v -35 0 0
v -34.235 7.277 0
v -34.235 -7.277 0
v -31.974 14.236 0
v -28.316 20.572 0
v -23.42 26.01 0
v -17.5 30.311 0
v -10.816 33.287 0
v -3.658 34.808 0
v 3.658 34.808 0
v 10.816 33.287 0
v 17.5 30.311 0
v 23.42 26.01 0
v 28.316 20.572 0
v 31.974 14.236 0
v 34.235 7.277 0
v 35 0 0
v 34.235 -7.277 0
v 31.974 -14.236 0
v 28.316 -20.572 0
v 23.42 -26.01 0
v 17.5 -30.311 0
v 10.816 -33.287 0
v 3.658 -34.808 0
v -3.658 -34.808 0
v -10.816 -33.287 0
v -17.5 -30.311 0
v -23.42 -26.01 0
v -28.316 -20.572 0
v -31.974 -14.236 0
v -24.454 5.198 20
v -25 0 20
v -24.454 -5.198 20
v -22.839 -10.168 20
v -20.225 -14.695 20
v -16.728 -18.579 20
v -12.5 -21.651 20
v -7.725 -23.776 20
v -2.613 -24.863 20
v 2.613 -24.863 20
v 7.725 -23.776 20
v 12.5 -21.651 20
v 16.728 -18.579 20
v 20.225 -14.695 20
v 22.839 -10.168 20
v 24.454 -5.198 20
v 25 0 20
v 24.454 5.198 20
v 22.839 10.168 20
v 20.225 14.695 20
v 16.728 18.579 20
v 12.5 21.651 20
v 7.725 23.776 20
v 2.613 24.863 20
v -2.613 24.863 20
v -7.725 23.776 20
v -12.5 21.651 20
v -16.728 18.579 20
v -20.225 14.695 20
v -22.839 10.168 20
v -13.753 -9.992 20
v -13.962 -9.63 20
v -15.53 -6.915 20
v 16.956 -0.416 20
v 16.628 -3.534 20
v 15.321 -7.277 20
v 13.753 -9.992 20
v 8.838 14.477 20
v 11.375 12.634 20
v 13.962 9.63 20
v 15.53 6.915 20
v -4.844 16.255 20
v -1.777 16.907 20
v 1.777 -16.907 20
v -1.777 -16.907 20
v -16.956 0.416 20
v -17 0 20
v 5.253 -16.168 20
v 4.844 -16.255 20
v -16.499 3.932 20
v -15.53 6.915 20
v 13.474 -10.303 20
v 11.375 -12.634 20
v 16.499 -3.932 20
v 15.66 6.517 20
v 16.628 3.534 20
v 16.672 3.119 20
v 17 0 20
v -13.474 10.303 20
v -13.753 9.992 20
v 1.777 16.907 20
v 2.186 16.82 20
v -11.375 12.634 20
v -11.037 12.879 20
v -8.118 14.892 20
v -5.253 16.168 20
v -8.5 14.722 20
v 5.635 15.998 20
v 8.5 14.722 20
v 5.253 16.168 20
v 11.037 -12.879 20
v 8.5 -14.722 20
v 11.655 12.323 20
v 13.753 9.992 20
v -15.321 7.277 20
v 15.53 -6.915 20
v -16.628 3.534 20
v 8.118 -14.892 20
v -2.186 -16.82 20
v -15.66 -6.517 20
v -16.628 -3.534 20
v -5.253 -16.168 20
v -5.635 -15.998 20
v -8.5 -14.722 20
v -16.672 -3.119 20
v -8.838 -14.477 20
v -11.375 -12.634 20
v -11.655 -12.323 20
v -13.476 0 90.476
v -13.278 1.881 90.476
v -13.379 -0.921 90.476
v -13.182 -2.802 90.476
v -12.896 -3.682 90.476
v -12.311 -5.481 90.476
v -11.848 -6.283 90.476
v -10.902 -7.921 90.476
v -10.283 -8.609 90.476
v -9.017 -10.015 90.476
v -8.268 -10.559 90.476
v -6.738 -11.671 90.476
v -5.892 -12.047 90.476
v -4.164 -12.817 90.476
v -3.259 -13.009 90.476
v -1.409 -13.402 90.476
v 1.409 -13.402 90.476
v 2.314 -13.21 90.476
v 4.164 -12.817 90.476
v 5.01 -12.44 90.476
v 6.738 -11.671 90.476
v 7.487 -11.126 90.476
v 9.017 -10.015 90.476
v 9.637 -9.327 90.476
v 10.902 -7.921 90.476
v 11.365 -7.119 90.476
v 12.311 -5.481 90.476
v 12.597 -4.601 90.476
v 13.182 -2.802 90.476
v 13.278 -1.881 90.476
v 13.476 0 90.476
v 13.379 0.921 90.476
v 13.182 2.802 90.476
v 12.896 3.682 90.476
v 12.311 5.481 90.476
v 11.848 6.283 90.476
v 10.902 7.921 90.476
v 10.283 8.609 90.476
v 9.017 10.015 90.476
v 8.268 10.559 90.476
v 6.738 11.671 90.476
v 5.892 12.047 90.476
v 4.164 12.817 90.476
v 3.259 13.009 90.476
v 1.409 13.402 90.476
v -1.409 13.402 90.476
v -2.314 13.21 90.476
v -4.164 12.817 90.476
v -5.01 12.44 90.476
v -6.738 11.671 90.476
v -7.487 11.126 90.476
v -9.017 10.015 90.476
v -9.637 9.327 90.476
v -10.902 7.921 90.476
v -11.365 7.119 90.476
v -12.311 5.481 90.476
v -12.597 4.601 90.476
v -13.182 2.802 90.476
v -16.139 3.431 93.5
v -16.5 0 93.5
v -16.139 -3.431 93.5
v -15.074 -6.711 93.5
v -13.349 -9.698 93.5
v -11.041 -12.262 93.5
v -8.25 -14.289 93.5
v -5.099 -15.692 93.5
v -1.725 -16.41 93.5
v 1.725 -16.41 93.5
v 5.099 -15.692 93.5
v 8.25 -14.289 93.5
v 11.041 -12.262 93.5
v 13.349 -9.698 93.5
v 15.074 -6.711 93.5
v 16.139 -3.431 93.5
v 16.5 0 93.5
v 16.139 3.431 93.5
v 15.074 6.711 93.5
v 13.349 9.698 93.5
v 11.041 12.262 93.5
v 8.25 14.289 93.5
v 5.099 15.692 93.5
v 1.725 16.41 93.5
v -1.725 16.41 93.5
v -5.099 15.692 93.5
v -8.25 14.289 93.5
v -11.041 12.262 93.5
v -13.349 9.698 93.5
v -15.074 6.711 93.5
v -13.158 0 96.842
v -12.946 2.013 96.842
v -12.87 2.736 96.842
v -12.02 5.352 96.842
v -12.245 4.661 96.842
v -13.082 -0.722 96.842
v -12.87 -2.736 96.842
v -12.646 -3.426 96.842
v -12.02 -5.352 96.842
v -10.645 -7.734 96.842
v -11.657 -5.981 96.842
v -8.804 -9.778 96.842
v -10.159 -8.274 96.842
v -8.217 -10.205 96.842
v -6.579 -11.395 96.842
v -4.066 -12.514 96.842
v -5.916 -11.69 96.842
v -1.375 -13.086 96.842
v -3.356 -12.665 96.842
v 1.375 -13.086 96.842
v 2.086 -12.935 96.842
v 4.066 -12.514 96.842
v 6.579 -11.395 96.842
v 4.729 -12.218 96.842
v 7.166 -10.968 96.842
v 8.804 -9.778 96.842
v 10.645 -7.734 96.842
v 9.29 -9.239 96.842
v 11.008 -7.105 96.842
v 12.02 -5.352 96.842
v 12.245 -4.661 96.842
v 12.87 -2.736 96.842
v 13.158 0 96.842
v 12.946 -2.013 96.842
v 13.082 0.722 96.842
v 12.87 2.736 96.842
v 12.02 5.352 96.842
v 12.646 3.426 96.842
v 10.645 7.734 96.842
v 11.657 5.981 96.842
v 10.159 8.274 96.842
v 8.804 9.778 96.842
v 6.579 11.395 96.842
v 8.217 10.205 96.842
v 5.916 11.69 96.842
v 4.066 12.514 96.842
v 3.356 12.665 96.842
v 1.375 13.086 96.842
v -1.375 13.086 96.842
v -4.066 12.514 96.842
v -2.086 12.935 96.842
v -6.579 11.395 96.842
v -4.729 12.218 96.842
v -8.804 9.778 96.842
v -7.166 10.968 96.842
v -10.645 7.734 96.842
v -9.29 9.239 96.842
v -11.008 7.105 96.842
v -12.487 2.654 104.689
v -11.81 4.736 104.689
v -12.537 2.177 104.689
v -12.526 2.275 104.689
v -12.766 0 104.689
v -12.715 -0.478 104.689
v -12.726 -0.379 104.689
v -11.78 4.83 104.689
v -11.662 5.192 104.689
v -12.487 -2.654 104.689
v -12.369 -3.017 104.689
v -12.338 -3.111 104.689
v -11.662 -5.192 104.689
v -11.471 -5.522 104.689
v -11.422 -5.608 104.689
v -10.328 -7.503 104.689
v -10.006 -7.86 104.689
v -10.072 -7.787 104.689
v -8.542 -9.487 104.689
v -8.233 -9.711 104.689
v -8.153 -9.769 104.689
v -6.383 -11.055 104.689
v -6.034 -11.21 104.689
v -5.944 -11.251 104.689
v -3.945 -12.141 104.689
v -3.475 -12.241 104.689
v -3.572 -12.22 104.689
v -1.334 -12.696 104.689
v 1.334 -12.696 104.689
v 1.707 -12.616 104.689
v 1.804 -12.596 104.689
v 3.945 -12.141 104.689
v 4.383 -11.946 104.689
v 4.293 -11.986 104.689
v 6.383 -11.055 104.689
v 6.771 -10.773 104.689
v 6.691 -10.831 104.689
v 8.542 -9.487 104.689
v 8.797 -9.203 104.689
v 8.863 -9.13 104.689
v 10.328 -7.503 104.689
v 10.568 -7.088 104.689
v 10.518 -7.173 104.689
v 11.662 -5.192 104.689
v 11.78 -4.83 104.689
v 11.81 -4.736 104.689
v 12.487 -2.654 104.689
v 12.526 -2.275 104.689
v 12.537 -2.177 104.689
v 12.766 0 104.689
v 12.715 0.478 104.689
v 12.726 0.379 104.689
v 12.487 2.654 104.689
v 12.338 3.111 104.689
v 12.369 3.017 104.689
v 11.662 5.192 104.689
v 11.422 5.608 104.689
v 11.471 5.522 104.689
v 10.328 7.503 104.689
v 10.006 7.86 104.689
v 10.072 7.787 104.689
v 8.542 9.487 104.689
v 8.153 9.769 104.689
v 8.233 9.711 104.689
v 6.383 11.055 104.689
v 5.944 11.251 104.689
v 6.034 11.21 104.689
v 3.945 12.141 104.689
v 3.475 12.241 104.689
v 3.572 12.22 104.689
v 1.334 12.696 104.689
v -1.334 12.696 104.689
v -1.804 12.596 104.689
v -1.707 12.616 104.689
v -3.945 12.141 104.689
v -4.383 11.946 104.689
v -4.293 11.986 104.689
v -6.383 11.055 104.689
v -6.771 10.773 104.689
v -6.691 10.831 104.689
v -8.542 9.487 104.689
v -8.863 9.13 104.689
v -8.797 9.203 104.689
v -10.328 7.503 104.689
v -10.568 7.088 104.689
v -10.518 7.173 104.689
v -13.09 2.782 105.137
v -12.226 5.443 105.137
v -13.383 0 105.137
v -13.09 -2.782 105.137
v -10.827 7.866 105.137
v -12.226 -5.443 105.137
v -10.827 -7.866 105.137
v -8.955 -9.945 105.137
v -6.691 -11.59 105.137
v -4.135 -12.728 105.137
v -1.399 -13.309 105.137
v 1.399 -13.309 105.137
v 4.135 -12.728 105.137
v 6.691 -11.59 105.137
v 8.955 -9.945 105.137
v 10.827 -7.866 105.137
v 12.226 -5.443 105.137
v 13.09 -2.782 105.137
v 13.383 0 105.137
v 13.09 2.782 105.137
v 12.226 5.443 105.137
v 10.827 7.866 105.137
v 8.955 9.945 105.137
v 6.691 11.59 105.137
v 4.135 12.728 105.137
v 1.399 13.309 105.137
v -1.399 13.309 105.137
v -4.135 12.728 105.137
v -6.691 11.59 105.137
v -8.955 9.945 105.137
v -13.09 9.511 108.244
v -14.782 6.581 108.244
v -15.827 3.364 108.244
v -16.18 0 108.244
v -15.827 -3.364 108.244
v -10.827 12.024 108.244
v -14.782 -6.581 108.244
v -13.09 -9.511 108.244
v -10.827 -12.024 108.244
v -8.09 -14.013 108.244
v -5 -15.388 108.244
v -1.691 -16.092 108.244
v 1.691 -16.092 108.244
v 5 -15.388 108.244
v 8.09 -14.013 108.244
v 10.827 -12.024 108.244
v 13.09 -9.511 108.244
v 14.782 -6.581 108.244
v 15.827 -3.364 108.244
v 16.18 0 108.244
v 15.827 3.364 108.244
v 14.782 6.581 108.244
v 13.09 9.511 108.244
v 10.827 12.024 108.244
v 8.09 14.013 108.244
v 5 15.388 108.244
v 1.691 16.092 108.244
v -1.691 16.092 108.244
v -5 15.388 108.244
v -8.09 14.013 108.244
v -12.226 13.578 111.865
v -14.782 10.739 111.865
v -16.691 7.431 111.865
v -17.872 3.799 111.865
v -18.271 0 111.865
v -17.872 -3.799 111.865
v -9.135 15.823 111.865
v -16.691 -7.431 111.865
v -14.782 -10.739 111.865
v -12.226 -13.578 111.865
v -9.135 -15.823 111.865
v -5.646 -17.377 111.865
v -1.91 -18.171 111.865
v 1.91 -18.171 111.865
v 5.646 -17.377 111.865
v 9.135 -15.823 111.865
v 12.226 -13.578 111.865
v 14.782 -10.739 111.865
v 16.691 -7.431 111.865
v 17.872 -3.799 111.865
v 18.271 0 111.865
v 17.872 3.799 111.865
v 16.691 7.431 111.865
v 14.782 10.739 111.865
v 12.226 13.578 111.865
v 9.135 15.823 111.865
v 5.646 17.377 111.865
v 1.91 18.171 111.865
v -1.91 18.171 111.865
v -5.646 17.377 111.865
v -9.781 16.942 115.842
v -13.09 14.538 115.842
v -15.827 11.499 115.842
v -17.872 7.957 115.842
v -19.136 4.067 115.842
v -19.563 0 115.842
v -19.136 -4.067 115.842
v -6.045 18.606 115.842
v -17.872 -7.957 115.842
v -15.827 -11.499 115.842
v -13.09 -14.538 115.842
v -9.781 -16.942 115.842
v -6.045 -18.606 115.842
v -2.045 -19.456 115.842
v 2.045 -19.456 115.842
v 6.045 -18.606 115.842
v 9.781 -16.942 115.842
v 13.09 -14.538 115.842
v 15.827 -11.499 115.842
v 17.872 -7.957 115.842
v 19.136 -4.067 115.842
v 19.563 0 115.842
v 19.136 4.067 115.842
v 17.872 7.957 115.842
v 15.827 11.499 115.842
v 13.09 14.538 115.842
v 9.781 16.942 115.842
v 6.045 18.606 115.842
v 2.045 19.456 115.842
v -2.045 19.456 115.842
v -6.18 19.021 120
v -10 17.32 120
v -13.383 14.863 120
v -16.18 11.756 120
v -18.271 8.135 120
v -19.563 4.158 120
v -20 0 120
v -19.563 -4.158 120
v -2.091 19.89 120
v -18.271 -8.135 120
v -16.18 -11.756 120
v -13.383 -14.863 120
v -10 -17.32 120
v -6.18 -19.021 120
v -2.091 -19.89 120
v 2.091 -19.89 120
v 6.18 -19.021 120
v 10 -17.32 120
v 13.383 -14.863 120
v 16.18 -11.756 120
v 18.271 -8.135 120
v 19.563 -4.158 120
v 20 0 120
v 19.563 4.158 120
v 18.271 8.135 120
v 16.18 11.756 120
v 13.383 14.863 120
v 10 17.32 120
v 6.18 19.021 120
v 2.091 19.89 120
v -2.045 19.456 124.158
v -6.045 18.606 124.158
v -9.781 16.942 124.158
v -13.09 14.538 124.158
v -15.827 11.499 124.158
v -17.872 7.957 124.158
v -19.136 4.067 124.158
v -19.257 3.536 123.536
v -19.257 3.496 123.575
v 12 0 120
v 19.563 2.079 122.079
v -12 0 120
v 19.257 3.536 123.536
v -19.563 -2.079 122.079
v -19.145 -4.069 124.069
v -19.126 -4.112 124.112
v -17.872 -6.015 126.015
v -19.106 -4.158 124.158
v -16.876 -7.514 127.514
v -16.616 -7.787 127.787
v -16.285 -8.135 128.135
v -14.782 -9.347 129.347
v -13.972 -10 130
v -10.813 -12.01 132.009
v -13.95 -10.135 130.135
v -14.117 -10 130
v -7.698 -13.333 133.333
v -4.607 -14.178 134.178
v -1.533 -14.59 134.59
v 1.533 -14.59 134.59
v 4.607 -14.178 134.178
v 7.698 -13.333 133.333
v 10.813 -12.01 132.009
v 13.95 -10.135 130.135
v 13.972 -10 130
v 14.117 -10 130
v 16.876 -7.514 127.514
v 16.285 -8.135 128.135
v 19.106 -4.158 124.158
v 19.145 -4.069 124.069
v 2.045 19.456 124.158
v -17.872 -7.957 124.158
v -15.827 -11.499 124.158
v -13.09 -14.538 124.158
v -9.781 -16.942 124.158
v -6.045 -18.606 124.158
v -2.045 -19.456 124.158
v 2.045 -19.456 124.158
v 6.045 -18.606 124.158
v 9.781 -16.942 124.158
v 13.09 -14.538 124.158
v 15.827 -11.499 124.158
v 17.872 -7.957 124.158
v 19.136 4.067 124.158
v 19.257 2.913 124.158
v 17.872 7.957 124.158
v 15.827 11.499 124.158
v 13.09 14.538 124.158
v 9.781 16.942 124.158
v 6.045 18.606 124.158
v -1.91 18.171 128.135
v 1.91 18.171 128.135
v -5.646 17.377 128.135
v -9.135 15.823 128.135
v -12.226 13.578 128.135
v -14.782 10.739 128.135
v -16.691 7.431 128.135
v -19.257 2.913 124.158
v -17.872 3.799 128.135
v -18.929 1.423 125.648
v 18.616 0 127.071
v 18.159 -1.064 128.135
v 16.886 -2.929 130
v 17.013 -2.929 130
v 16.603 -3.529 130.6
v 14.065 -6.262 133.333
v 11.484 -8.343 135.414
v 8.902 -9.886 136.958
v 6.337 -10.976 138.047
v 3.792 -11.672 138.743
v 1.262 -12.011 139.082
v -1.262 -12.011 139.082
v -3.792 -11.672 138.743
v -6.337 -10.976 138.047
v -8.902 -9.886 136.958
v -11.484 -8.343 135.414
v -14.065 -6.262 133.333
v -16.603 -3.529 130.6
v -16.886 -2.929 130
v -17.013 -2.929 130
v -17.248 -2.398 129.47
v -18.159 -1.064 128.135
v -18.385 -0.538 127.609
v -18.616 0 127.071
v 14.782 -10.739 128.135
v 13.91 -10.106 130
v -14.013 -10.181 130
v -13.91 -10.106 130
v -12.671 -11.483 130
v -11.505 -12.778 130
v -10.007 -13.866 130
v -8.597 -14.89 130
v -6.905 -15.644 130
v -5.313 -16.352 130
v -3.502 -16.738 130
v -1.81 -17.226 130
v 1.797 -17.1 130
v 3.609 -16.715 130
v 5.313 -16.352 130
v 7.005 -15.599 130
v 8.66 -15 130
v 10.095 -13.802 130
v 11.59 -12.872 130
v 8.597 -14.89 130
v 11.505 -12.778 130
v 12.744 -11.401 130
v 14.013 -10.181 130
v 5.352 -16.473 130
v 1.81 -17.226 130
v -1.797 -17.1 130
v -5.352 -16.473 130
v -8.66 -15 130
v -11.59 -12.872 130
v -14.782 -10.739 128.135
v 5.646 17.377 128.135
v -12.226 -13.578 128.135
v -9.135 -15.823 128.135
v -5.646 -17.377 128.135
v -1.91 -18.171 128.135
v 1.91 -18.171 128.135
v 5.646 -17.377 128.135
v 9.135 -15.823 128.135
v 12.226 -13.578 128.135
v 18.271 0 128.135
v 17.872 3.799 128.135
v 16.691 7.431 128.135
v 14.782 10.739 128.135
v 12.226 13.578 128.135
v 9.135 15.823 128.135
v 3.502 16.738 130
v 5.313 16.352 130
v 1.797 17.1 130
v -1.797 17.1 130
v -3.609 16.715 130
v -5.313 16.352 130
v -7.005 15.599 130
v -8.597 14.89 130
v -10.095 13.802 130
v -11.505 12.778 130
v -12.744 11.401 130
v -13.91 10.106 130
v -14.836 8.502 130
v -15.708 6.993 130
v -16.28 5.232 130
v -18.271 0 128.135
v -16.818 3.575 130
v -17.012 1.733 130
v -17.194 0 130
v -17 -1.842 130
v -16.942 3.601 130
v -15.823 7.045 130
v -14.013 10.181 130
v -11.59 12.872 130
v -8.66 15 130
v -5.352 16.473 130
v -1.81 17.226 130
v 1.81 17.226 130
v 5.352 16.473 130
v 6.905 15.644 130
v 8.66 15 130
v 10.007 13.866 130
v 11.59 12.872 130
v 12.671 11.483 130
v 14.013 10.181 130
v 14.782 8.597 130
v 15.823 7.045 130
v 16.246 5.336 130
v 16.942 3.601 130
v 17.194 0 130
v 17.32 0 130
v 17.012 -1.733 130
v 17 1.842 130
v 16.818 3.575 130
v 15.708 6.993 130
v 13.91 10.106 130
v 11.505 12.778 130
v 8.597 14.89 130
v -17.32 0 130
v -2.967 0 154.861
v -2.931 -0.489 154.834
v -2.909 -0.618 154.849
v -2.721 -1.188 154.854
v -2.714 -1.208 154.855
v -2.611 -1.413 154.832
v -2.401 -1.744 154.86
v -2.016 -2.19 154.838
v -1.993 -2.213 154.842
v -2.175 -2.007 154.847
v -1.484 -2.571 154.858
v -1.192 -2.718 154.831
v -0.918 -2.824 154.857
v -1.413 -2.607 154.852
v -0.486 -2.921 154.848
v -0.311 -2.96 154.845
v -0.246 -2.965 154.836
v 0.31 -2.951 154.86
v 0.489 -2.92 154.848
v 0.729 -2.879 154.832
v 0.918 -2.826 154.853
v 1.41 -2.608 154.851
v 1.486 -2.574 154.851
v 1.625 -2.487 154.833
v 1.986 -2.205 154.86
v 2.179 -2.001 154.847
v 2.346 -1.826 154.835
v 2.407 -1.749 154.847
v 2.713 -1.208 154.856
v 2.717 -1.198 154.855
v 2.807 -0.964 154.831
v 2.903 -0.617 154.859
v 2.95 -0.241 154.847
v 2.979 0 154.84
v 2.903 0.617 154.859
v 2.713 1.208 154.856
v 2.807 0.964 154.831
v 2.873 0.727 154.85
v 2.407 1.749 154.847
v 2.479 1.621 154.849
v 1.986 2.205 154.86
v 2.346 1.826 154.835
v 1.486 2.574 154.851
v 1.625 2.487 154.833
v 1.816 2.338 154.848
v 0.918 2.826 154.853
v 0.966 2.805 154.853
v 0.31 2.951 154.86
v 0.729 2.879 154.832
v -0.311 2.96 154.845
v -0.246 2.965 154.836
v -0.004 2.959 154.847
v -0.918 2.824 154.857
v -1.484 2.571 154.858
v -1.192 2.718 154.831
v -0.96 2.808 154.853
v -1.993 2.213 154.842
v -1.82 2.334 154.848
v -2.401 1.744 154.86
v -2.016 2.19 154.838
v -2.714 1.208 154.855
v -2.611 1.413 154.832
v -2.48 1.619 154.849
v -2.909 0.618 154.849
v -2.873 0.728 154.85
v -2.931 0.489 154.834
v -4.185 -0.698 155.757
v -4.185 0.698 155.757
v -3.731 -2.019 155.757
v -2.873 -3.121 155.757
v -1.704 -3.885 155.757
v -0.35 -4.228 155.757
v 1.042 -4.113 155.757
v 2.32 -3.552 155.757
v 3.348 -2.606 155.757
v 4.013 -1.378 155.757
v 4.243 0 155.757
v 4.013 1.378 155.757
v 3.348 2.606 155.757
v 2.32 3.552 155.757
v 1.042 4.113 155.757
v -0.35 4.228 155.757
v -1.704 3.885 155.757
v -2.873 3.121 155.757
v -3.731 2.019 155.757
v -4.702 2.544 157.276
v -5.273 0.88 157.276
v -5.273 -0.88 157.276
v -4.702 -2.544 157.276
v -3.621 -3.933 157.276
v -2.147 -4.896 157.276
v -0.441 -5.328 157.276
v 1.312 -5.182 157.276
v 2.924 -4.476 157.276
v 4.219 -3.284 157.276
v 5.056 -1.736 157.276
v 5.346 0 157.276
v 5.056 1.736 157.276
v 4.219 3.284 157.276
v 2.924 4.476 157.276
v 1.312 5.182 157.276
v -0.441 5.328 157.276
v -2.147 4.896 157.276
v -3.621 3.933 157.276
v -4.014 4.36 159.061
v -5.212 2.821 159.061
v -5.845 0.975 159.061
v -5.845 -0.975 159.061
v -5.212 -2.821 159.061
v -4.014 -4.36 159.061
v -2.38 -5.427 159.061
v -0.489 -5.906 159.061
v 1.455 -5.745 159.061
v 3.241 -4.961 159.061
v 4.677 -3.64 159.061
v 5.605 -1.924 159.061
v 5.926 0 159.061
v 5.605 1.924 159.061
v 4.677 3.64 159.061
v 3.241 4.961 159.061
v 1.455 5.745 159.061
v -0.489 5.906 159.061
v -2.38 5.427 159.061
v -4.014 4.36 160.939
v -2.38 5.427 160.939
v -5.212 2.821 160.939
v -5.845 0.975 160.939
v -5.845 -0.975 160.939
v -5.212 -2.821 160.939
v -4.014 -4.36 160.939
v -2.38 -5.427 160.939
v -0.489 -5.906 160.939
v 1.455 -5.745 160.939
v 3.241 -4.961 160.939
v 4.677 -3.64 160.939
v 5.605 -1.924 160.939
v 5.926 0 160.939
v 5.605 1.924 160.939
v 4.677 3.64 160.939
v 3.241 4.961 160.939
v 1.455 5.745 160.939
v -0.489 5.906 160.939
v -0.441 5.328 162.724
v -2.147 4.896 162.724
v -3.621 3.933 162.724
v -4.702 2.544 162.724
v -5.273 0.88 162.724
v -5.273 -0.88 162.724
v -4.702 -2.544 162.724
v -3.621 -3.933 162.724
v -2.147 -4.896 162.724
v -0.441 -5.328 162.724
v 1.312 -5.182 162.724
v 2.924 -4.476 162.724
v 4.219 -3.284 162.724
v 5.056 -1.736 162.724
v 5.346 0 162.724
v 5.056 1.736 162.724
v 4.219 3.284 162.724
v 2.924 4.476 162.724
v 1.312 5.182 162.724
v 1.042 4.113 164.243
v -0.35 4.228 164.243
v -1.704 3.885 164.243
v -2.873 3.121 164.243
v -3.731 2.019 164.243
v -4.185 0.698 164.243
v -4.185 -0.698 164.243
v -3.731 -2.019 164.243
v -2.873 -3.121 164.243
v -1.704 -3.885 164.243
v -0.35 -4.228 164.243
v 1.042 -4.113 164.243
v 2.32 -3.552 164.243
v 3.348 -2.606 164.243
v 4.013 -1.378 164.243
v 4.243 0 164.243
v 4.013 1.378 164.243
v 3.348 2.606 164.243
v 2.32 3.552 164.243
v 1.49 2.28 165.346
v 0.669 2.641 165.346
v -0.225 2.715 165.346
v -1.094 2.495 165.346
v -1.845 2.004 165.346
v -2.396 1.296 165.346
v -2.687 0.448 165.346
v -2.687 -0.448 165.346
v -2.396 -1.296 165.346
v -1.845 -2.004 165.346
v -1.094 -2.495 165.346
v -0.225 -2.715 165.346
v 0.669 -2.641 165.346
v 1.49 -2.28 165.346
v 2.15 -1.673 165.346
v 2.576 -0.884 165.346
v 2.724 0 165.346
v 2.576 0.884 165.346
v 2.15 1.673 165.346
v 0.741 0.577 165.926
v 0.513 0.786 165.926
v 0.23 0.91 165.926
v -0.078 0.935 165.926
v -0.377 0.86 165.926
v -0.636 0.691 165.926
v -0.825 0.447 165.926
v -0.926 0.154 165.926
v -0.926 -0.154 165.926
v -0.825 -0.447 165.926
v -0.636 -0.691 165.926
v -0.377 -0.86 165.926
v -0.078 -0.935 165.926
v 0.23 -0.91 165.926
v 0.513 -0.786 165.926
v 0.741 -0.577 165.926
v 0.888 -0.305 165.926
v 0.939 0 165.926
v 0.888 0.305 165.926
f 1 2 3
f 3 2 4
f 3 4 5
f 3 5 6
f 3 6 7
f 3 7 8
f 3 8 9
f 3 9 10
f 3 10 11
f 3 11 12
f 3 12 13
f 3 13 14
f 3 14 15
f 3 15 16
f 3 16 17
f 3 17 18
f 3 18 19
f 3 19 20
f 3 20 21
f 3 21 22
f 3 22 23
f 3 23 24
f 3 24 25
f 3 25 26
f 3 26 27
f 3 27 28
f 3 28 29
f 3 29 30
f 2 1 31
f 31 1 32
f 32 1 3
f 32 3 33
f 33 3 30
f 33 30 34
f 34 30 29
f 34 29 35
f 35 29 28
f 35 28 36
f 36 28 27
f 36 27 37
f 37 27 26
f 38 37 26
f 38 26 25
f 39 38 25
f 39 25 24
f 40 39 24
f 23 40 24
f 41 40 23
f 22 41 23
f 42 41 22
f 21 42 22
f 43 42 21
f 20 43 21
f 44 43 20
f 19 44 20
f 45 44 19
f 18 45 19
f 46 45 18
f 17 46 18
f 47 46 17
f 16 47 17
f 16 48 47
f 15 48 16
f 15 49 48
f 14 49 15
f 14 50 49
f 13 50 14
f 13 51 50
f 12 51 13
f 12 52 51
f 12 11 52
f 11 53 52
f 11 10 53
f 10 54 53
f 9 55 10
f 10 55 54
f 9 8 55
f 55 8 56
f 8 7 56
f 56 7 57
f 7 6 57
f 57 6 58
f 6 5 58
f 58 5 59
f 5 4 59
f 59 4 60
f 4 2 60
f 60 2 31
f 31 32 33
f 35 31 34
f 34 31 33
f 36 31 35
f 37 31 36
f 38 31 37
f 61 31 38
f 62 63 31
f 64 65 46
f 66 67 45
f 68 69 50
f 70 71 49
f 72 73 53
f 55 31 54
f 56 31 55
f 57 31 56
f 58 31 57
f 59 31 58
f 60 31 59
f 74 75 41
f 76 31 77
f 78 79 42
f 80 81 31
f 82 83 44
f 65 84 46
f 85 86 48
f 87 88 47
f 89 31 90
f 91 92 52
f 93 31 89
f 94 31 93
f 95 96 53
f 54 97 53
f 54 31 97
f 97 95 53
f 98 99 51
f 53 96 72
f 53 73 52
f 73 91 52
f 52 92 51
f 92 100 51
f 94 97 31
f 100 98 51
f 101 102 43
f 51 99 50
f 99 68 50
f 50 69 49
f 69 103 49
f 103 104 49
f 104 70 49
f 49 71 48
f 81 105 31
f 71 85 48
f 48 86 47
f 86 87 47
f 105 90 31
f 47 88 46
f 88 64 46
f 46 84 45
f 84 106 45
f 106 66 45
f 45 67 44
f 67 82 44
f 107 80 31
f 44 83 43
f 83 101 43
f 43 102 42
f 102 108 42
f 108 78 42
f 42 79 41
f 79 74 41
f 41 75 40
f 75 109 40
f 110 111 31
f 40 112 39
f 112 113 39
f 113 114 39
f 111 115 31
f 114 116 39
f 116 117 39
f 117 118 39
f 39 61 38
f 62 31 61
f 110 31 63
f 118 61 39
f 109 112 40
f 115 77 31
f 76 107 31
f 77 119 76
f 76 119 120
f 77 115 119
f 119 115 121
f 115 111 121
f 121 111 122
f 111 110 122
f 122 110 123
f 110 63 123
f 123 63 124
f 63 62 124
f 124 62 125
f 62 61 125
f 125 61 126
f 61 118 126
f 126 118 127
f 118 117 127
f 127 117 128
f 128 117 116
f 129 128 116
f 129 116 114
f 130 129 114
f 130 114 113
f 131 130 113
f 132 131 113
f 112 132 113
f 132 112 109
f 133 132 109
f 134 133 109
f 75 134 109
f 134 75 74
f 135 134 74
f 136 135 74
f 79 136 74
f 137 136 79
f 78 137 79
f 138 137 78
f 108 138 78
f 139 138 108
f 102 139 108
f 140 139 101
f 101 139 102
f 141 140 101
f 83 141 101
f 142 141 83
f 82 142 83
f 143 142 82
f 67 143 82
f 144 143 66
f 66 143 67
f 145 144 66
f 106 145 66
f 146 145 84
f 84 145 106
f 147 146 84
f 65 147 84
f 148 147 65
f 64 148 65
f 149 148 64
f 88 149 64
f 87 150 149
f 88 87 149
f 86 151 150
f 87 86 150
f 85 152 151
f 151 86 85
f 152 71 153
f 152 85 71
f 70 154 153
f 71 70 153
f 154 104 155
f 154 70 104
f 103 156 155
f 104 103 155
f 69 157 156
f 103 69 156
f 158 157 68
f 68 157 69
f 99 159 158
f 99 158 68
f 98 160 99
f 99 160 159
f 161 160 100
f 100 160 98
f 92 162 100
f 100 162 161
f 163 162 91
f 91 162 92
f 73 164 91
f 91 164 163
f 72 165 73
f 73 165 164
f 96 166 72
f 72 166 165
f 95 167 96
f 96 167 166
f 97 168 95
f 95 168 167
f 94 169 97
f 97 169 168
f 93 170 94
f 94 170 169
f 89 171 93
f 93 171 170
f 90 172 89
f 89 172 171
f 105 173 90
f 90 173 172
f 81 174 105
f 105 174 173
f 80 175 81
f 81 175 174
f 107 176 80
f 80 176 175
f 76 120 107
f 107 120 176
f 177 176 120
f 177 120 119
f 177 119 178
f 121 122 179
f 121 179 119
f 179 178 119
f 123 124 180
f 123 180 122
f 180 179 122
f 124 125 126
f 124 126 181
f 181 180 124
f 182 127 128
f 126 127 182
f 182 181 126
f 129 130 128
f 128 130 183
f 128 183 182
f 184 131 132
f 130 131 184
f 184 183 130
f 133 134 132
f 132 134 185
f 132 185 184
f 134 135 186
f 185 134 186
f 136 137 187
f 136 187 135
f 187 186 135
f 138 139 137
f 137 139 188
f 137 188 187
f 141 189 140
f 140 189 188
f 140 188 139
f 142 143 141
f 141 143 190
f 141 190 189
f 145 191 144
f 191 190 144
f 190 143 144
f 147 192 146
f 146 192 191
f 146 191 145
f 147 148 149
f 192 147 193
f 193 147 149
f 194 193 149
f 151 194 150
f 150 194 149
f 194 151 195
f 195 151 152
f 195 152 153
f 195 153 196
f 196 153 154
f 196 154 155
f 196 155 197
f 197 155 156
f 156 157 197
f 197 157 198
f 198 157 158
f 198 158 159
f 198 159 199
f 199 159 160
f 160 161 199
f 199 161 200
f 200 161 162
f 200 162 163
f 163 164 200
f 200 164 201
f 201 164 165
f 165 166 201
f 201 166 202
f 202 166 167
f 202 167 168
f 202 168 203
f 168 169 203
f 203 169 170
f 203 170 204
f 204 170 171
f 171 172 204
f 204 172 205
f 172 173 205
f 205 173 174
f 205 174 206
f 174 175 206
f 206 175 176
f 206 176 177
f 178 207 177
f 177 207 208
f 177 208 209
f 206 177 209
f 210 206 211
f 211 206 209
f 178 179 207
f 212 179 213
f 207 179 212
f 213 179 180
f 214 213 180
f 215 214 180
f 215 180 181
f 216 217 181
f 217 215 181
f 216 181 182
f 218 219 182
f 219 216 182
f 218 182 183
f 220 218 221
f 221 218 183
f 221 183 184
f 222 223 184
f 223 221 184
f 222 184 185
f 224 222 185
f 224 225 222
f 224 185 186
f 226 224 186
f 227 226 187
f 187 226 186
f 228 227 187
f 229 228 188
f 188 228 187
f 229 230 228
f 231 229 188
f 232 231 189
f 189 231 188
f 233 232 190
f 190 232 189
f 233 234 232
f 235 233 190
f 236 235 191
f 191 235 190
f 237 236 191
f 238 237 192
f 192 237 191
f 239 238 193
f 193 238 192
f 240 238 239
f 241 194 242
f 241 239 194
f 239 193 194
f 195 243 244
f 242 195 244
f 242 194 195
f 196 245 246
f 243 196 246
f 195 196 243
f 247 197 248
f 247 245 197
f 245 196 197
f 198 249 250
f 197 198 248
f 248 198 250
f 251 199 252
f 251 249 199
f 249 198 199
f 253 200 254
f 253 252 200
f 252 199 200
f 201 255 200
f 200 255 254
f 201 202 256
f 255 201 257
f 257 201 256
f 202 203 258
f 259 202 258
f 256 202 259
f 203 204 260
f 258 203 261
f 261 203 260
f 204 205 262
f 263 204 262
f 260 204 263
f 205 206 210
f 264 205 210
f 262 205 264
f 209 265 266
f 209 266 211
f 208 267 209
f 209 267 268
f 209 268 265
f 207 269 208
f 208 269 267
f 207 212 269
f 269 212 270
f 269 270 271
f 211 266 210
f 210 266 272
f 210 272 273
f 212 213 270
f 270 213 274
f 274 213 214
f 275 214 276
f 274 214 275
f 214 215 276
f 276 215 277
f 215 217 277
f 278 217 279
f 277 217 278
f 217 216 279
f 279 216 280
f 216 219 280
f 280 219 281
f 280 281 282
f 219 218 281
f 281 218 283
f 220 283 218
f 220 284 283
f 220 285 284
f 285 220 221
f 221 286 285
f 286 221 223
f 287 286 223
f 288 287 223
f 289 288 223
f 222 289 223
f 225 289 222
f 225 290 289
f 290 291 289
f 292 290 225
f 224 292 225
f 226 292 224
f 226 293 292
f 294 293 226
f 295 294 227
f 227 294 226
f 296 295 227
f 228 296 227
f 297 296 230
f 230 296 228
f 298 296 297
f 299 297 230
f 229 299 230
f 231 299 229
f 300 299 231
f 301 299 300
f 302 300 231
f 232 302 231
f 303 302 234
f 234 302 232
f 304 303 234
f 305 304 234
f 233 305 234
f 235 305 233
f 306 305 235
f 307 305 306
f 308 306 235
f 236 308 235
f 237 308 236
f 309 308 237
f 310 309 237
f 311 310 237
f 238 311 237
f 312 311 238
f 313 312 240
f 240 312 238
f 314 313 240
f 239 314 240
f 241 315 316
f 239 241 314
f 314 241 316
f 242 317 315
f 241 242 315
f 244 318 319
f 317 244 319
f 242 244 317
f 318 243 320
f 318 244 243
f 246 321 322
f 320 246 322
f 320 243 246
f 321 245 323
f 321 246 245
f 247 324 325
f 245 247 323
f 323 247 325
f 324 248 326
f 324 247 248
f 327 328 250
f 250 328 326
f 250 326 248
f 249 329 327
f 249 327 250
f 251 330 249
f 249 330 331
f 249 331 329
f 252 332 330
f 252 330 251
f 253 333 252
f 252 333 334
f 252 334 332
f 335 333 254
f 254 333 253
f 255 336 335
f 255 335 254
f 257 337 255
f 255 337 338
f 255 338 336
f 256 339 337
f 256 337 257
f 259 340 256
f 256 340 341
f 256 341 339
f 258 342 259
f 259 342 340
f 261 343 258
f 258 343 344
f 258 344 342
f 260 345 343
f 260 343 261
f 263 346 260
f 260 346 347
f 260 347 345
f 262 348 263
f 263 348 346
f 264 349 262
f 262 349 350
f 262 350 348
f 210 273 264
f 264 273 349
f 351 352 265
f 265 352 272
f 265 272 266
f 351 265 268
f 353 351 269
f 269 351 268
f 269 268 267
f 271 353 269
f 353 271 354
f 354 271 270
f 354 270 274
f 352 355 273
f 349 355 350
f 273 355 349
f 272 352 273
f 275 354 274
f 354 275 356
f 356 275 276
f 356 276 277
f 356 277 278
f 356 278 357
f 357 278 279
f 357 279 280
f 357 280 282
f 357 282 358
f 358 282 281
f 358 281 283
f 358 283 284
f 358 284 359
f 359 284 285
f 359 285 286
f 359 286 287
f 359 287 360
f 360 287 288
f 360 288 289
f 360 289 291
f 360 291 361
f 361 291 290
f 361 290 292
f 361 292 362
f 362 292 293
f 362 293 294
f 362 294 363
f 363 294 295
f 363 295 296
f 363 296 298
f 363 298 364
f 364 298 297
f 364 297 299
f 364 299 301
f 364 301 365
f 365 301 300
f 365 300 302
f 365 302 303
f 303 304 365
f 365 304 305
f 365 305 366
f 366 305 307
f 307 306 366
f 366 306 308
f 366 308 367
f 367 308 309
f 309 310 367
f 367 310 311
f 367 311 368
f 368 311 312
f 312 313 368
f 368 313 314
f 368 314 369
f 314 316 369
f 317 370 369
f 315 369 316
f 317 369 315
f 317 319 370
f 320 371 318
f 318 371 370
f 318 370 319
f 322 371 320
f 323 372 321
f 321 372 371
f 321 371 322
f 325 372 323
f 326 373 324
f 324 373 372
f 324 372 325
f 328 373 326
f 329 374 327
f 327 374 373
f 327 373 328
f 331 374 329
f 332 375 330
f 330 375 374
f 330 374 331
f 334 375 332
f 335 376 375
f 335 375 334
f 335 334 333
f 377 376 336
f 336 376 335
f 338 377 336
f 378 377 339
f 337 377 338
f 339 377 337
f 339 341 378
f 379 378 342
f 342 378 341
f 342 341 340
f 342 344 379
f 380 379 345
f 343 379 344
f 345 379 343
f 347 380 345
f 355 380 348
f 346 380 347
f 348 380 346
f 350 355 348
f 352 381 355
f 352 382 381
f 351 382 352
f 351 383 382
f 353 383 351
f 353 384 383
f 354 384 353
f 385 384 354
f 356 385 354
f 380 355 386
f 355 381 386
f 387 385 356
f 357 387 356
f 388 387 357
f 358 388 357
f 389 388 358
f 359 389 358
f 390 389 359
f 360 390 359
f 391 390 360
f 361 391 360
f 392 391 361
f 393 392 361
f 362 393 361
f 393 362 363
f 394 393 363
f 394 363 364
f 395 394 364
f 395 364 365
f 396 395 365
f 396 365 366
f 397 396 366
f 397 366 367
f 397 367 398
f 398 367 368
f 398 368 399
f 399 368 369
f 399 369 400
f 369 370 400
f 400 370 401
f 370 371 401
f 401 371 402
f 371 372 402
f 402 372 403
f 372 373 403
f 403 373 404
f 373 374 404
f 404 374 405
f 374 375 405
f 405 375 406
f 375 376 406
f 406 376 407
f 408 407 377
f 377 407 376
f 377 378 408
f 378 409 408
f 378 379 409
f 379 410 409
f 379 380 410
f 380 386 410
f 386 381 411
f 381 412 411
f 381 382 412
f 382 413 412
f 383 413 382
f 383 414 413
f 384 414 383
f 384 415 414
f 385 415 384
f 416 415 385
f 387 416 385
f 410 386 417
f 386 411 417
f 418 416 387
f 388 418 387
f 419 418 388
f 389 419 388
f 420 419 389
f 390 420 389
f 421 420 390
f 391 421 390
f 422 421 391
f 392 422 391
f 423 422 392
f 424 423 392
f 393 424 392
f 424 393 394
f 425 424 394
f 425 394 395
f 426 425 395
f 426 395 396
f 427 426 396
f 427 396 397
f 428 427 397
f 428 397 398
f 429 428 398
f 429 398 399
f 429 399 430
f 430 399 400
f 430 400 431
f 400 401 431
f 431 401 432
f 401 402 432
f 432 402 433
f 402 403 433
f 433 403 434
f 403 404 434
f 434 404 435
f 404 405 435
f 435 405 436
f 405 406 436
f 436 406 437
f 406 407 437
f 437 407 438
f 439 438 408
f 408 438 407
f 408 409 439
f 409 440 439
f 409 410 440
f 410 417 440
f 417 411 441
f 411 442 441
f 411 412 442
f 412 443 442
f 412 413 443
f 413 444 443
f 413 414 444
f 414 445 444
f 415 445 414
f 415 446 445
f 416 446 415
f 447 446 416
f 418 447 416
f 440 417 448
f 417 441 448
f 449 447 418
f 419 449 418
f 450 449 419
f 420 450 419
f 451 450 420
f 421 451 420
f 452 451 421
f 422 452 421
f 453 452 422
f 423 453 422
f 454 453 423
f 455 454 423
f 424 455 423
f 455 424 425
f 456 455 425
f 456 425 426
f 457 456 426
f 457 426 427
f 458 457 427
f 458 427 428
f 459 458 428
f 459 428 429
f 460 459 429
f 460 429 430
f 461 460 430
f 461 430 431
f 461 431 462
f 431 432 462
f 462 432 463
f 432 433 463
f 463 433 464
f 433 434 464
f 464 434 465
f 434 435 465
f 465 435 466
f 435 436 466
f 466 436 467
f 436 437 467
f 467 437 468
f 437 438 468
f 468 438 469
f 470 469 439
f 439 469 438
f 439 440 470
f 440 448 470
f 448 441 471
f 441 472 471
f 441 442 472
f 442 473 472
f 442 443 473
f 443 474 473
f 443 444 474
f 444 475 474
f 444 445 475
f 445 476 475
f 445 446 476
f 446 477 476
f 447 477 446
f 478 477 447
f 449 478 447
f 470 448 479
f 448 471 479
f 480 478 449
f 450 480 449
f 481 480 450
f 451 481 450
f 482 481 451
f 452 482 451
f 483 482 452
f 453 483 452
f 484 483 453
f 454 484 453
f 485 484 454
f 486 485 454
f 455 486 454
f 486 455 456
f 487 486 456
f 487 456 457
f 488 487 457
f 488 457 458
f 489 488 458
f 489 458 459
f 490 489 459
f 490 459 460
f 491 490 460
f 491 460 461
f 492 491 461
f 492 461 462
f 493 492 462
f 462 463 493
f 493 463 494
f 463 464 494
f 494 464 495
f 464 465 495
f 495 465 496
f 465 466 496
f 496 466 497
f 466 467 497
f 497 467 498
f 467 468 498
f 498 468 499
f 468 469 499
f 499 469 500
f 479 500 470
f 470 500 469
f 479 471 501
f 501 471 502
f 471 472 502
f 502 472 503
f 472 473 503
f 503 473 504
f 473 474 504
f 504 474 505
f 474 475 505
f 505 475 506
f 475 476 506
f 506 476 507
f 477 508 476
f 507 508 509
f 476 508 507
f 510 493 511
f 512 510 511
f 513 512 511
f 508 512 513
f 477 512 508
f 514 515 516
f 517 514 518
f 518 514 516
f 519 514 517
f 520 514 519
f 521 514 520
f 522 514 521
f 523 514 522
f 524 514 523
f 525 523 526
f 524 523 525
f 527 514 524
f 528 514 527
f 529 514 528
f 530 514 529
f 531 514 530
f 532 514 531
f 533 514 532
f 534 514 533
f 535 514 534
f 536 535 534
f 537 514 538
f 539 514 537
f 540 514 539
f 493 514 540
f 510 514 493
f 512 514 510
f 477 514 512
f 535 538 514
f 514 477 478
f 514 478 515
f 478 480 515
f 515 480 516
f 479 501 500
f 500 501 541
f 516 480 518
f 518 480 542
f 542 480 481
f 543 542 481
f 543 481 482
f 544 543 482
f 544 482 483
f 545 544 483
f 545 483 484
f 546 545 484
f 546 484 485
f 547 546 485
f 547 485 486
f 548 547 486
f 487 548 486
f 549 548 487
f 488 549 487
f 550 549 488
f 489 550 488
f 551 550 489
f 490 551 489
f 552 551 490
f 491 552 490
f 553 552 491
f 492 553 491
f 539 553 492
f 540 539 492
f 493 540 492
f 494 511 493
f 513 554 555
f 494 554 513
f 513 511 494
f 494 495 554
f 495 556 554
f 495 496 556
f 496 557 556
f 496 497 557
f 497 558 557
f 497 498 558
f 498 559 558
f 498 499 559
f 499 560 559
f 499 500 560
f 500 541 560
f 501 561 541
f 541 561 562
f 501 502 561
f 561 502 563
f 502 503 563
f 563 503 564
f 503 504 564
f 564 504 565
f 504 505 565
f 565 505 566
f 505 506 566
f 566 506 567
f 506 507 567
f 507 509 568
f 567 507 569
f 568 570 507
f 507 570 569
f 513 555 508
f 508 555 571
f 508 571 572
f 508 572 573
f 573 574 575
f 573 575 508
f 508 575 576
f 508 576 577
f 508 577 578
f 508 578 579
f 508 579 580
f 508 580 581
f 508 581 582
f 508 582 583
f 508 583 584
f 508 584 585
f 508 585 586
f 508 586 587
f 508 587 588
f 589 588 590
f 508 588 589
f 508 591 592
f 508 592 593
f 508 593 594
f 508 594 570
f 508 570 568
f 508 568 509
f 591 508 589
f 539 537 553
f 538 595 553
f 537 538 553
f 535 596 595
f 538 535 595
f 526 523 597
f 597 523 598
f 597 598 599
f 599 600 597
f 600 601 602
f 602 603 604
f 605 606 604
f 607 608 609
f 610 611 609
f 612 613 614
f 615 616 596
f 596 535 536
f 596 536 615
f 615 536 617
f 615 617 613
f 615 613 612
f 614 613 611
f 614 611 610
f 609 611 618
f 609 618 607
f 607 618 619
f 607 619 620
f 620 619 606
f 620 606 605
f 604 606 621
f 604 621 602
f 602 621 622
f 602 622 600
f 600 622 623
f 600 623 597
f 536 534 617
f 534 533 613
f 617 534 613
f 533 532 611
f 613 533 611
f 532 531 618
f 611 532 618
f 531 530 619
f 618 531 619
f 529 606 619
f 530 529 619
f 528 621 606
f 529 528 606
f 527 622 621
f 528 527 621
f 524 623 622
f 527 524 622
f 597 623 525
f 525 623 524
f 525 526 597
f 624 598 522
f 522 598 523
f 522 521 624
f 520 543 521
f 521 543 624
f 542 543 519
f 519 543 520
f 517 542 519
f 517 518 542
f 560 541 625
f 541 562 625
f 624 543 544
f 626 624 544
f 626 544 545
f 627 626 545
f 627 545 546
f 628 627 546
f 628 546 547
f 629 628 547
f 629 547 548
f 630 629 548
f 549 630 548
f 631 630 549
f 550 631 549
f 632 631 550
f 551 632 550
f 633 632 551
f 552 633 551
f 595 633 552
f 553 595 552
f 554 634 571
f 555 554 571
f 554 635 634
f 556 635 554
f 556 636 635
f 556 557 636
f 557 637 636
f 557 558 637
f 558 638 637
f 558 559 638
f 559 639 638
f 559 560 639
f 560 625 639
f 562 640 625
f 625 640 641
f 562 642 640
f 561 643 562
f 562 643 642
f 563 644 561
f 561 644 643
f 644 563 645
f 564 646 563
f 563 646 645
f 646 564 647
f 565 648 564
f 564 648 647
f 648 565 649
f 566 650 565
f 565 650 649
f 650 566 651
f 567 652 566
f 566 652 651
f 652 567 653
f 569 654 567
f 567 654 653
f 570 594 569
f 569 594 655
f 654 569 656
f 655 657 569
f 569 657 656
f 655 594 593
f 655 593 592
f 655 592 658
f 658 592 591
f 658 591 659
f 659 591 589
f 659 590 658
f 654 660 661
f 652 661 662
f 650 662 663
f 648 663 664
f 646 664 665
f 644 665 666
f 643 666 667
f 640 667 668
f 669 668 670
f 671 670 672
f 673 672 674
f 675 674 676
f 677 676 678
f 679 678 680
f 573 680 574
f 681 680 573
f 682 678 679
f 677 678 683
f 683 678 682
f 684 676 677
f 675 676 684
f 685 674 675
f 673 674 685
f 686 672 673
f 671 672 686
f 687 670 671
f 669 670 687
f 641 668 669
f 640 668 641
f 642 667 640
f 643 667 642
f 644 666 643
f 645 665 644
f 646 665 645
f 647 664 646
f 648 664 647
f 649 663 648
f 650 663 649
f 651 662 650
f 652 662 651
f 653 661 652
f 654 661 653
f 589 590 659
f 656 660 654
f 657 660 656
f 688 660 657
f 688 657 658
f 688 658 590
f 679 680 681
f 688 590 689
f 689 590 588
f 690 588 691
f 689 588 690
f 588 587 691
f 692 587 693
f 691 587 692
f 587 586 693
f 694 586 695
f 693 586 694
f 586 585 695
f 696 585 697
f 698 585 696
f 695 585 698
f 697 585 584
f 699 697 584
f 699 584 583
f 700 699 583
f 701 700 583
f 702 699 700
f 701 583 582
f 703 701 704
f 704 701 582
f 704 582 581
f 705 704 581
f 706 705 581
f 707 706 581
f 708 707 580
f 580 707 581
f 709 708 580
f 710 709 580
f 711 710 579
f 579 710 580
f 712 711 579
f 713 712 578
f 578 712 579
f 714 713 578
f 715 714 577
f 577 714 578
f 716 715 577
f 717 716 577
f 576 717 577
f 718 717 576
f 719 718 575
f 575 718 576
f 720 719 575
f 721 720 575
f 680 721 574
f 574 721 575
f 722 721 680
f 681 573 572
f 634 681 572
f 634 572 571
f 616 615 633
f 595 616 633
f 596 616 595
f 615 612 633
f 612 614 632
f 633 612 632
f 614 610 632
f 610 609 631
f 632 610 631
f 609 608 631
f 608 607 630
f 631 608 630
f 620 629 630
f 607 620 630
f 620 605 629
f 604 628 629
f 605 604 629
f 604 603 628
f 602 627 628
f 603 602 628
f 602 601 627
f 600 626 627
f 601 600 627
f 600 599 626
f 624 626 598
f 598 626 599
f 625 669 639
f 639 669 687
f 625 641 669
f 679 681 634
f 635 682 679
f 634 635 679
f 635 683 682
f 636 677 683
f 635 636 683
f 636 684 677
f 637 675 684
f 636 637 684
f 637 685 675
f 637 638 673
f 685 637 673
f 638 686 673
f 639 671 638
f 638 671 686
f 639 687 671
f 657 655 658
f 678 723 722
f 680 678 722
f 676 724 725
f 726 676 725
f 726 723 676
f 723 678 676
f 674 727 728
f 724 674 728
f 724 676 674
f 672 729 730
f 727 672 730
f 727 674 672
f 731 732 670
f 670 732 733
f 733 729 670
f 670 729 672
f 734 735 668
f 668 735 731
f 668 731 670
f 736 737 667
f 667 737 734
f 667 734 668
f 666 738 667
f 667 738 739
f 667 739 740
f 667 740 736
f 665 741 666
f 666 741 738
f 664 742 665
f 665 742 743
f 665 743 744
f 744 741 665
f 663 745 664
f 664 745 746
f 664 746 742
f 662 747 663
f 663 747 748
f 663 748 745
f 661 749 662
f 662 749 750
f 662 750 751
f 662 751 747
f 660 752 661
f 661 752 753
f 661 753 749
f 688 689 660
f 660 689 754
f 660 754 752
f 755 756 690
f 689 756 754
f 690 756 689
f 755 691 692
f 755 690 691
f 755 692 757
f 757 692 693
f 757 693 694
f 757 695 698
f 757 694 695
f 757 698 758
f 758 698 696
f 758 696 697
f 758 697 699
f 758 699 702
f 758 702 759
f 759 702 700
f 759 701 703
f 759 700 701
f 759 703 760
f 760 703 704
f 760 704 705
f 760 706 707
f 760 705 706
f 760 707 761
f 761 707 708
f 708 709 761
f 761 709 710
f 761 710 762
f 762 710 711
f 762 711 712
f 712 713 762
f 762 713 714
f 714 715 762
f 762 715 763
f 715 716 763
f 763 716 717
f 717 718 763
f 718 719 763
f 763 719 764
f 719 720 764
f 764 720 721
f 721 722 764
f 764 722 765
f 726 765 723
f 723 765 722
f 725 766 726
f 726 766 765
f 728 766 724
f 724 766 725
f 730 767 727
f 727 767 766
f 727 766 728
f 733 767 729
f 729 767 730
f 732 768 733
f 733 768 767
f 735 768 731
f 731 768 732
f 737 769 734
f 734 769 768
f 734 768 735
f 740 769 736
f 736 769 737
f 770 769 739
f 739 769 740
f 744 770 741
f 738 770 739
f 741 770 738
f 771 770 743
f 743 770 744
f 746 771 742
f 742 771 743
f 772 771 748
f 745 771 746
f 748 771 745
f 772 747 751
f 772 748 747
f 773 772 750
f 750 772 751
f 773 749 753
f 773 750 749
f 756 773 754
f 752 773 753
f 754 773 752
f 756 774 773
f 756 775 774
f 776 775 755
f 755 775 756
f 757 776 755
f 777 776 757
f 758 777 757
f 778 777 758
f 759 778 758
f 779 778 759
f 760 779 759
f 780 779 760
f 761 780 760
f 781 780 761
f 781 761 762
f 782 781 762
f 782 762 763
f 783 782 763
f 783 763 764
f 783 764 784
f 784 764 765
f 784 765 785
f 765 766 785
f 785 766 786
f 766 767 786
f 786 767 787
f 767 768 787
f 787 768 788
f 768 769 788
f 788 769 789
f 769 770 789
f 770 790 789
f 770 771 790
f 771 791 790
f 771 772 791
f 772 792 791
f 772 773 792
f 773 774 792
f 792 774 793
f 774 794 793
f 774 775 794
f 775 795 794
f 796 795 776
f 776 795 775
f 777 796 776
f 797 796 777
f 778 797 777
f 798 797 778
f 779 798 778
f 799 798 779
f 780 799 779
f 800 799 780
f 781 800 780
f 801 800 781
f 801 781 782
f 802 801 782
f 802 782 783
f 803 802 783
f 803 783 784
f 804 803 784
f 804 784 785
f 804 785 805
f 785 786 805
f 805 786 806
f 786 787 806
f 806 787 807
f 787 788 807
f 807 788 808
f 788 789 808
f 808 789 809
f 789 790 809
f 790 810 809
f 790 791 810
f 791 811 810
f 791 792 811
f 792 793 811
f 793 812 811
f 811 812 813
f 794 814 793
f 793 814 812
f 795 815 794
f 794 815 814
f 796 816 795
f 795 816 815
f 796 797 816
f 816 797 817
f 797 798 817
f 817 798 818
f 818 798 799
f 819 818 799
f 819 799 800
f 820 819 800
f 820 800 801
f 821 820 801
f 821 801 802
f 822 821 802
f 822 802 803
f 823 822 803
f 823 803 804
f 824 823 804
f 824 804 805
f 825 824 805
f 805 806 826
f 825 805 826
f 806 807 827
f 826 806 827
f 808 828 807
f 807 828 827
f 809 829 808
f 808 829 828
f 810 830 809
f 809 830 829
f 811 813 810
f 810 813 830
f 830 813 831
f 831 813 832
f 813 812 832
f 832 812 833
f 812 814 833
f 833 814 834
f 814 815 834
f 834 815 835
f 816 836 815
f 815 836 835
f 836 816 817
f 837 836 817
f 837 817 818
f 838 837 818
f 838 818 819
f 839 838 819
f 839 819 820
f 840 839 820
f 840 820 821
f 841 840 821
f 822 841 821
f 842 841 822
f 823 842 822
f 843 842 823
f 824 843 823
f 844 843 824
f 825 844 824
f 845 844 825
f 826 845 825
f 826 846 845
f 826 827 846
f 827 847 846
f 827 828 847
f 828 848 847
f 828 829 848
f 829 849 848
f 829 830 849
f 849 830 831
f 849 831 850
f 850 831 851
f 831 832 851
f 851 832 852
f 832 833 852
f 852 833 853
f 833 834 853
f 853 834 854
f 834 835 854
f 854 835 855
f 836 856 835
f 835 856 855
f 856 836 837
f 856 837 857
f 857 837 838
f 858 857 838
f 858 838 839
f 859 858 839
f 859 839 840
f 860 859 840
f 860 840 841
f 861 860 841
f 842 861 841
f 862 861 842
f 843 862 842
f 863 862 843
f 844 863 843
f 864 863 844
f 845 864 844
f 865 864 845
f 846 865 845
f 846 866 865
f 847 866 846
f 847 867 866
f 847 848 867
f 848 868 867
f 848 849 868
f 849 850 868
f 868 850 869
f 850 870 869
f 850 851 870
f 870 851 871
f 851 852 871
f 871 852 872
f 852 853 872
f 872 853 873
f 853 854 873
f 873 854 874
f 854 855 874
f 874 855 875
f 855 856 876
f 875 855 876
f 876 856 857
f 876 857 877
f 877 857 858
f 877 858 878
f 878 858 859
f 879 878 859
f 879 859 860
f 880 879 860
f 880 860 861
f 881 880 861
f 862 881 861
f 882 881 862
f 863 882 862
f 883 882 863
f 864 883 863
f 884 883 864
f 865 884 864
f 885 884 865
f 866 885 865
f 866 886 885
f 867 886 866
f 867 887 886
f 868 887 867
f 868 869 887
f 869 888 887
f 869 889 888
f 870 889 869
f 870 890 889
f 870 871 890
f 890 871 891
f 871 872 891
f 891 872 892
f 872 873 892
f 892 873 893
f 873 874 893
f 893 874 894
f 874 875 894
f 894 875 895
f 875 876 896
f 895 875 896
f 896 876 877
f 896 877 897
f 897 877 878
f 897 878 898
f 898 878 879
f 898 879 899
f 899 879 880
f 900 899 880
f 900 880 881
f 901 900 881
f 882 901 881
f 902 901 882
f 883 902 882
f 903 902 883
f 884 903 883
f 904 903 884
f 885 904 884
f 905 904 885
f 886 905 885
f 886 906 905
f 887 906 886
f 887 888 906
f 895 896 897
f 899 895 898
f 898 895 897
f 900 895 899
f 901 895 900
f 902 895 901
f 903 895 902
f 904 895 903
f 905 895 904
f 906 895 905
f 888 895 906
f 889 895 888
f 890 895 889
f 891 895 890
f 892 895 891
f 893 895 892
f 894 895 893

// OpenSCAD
union() {
  // head
  translate([0, 0, 120])
    difference() {
      union() {
        // teardrop shape
        sphere(r = 20);
        translate([0, 0, 20 * sin(30)])
          cylinder(h = 30, r1 = 20 * cos(30), r2 = 0);

        // dollop
        translate([0, 0, 30 + 20 * sin(30)])
          sphere(r = 6);
      }
      //cut out slot
      rotate([45, 0, 0])
        translate([-20, 0, 0])
          cube([40, 5, 40]);
    }
  // neck
  cylinder(h = 120, r1 = 18, r2 = 12);

  // base
  cylinder(h = 20, r1 = 35, r2 = 25);

  // collar
  translate([0, 0, 90])
    intersection() {
      cylinder(h = 20, r1 = 20, r2 = 0);
      translate([0, 0, 7])
        mirror([0, 0, 1])
          cylinder(h = 20, r1 = 20, r2 = 0);
    }
}
